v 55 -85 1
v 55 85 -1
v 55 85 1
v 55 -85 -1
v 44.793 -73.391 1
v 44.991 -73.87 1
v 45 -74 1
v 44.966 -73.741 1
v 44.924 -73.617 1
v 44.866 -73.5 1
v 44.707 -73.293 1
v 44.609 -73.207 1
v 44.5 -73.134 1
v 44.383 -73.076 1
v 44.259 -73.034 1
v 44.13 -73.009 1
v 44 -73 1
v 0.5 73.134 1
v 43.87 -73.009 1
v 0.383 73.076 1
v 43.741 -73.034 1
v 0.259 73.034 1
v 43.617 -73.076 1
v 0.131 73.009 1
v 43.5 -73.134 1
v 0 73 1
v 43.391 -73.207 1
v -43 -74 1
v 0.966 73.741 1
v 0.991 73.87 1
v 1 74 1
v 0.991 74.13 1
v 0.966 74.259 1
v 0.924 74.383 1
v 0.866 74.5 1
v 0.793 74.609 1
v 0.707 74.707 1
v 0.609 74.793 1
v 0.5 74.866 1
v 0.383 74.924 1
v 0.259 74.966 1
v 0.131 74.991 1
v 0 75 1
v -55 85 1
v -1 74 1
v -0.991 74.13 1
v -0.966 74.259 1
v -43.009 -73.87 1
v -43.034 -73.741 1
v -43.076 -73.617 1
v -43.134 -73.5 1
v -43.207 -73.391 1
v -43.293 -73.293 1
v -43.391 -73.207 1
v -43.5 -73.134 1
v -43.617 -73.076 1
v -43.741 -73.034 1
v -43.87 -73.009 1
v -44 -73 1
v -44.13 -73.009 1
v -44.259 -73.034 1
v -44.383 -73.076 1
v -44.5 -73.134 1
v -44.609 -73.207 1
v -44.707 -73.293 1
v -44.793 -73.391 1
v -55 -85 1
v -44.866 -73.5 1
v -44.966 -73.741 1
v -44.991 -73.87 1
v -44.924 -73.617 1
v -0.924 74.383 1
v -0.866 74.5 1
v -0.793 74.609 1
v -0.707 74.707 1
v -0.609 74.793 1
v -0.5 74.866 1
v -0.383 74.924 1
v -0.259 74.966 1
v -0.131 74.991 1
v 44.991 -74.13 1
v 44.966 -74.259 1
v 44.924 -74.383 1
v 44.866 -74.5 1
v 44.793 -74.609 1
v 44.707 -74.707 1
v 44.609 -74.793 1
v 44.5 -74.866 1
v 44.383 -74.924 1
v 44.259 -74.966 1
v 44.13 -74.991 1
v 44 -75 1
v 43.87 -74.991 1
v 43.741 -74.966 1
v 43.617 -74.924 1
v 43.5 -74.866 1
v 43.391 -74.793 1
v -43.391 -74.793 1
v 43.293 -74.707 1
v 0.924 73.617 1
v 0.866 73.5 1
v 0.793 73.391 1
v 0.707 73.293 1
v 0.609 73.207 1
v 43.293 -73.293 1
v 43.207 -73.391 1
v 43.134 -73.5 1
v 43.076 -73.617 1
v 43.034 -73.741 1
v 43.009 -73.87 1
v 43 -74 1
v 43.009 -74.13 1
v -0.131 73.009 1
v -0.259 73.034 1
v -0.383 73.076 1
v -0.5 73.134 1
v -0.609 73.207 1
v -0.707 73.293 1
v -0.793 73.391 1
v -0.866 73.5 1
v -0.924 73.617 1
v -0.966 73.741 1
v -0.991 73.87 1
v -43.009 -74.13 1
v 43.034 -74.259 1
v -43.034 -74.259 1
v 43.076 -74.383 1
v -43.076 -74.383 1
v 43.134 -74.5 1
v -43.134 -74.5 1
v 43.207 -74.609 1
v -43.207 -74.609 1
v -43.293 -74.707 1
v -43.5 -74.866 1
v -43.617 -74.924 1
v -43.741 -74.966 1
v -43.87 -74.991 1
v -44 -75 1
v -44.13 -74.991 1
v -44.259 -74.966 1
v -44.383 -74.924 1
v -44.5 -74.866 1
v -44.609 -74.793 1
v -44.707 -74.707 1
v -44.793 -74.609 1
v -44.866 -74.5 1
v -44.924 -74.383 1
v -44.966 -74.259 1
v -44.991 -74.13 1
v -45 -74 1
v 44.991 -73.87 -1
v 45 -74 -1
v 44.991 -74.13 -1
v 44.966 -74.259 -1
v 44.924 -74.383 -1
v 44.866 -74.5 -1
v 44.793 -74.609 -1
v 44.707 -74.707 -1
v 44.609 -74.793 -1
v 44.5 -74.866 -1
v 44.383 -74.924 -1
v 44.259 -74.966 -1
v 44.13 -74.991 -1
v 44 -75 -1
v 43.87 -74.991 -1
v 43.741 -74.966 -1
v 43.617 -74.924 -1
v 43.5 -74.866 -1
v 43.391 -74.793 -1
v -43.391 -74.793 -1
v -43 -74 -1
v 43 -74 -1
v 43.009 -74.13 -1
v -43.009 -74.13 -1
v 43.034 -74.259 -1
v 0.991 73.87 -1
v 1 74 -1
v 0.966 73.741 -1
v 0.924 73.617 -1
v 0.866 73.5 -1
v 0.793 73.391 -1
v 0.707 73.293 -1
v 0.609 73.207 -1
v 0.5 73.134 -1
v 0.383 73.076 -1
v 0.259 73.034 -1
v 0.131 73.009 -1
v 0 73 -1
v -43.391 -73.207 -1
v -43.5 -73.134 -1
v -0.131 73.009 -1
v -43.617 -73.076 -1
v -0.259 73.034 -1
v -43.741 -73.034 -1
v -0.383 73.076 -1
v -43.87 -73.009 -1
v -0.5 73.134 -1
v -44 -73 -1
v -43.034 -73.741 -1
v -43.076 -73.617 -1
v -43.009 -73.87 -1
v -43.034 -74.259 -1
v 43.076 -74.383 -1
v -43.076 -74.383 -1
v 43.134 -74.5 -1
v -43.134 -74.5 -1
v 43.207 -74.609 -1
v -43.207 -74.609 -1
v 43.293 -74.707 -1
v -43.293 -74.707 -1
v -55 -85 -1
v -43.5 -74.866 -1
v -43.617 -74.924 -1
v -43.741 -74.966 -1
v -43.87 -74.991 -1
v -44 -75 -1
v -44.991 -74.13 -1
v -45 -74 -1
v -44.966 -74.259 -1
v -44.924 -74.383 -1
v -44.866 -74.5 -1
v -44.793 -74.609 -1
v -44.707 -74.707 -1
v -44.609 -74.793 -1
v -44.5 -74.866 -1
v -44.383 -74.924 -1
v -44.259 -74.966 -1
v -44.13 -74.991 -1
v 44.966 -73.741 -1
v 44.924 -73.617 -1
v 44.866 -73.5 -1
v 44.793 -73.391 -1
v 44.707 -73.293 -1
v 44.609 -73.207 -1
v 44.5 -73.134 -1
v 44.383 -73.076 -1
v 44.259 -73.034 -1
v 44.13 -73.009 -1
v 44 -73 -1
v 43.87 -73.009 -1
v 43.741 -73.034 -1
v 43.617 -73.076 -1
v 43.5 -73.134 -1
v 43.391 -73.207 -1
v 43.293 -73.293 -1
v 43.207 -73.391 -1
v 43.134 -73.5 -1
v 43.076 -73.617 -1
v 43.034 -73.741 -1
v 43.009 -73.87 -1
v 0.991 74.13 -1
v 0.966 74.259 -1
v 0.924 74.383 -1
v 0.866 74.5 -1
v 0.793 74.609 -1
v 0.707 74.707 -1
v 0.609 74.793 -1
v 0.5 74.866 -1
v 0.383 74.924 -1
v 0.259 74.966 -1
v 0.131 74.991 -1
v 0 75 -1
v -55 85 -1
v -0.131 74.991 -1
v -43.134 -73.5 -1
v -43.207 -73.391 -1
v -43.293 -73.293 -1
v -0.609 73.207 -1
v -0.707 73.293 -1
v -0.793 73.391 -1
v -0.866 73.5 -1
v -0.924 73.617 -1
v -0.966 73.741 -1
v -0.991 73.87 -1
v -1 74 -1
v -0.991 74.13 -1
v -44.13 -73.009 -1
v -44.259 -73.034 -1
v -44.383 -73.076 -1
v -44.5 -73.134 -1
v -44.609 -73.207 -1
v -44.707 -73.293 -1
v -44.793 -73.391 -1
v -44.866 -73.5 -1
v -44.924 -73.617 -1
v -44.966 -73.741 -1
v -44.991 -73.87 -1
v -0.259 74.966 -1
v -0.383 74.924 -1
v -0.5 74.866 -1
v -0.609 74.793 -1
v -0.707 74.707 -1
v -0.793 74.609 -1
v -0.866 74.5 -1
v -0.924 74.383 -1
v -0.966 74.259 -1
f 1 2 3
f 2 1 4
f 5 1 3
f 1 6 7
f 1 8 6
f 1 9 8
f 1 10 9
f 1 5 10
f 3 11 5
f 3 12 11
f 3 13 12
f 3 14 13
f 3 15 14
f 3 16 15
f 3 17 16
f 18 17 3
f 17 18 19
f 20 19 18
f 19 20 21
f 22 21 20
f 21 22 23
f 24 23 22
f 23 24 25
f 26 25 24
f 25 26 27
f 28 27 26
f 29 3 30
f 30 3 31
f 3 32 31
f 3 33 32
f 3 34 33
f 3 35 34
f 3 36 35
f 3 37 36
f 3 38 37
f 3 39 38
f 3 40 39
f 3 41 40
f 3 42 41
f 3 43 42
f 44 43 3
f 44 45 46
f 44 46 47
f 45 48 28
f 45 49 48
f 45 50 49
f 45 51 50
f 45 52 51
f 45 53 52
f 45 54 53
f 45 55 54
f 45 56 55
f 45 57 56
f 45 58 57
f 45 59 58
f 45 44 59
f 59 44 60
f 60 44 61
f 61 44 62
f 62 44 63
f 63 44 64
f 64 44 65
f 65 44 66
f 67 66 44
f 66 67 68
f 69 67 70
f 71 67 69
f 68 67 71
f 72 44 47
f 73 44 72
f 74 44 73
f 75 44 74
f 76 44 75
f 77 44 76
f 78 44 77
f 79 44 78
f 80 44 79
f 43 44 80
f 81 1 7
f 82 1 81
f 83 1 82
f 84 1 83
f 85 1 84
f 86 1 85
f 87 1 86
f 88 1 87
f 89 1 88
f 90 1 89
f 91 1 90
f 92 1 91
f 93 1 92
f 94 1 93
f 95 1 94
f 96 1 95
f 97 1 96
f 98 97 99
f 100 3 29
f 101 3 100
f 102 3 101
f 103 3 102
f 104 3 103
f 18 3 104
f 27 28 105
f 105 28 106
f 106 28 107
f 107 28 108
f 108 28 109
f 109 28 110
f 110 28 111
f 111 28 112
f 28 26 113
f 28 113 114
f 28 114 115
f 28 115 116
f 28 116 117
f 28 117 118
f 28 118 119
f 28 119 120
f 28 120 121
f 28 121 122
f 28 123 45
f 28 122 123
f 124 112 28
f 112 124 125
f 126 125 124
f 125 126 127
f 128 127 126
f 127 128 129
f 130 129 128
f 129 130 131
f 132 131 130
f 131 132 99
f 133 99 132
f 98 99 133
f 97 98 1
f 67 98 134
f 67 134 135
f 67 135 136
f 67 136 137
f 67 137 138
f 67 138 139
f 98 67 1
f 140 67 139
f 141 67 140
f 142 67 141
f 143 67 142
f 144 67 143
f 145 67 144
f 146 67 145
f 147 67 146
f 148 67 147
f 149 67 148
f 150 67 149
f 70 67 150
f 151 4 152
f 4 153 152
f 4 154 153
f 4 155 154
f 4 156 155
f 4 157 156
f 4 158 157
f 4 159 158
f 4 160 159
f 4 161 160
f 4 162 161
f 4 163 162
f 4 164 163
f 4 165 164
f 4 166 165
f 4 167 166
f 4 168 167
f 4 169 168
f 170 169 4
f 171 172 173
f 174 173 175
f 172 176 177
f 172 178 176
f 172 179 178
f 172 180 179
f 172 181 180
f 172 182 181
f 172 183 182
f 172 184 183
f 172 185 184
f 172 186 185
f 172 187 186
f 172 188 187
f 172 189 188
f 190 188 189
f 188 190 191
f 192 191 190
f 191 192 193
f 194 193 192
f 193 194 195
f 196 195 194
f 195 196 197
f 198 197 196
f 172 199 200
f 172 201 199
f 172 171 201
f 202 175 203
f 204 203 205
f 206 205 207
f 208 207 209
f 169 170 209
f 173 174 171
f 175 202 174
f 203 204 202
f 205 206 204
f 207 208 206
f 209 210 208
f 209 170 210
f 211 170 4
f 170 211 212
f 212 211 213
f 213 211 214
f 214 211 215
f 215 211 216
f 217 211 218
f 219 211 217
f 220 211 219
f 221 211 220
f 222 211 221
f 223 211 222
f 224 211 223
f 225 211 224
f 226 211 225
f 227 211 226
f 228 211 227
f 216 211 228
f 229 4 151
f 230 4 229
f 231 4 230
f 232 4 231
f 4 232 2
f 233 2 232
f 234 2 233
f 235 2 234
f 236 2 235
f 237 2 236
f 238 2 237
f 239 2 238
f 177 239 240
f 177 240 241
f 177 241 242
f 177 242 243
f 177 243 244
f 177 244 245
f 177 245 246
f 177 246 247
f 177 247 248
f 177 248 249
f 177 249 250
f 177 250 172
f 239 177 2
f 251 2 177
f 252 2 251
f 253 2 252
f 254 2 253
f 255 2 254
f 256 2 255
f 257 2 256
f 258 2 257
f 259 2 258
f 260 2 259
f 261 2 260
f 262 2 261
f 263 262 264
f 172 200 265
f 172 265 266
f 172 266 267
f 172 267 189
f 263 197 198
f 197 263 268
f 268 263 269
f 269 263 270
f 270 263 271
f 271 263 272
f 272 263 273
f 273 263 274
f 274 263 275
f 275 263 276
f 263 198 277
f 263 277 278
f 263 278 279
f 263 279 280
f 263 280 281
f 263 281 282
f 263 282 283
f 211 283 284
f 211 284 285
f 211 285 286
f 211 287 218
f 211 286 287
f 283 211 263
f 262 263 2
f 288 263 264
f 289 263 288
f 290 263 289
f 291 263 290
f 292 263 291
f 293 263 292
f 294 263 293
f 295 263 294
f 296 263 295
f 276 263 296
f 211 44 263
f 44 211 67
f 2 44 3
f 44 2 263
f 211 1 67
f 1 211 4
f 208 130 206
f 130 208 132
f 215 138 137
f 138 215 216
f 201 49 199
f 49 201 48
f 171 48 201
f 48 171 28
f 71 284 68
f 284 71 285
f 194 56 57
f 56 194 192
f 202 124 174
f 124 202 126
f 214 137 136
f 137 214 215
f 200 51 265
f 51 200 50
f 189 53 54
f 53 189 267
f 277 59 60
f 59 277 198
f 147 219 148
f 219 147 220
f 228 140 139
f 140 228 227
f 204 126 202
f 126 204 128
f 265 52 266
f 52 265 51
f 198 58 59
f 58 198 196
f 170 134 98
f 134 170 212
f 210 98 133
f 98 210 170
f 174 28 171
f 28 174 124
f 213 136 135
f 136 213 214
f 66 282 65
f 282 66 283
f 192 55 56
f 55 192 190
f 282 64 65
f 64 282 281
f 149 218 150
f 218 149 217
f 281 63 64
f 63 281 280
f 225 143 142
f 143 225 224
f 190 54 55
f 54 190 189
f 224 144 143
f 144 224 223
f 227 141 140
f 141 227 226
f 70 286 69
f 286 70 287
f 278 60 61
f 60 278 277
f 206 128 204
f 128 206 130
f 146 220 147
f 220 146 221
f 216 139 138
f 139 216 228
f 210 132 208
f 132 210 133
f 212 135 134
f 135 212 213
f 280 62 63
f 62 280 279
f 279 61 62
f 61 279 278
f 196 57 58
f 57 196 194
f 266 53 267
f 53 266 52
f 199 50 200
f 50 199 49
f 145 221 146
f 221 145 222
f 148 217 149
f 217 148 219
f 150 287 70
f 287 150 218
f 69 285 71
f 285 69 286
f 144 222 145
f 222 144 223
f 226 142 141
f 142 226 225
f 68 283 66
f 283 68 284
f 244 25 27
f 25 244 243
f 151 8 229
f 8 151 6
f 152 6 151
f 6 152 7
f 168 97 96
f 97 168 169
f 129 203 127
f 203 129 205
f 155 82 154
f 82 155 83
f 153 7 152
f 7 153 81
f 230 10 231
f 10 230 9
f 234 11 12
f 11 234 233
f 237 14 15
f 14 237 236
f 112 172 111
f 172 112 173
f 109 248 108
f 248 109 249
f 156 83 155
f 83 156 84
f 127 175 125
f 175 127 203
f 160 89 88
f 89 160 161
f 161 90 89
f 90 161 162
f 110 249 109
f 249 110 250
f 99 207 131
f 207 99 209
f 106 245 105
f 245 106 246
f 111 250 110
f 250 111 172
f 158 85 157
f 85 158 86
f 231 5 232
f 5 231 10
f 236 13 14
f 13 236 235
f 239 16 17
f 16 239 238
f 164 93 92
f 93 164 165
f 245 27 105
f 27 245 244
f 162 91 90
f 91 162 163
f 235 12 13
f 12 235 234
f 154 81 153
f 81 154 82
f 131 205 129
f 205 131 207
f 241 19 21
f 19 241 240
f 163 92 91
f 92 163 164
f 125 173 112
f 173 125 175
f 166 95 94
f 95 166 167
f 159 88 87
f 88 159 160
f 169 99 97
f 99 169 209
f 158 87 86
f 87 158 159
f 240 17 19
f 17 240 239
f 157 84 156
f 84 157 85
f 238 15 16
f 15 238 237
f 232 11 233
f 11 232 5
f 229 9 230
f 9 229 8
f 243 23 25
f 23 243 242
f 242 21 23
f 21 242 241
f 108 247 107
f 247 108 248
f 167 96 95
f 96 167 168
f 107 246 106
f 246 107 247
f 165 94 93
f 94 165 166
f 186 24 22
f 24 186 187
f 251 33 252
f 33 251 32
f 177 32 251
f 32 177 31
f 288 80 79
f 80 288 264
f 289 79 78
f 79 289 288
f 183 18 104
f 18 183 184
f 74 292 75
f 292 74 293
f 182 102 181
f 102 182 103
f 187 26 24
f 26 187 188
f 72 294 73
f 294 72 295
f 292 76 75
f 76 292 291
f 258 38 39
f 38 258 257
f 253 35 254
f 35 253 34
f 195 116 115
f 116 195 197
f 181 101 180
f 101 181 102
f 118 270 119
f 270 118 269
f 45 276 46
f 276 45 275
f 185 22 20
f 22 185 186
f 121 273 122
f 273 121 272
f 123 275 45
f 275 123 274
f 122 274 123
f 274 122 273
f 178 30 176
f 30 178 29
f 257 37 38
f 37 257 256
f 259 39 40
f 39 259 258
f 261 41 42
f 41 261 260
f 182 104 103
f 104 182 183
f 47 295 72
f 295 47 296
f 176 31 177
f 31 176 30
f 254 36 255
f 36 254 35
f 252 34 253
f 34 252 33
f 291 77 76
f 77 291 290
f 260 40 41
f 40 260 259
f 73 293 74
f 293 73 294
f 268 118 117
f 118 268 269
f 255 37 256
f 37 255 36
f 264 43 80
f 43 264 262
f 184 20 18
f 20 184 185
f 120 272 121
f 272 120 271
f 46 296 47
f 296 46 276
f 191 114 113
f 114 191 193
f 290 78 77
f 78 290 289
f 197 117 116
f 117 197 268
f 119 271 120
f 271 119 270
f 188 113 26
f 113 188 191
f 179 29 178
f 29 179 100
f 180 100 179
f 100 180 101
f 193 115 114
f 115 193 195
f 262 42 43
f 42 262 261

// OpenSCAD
// ========================================
// a 110 x 170 x 2 mm plate with three 2 mm holes
// NeuroCAD canonical IR; dimensions are millimetres
// ========================================
$fn = 48;

difference() {
  cube(size=[110, 170, 2], center=true);
  translate([-44, -74, 0]) {
    cylinder(r=1, h=4, center=true);
  }
  translate([44, -74, 0]) {
    cylinder(r=1, h=4, center=true);
  }
  translate([0, 74, 0]) {
    cylinder(r=1, h=4, center=true);
  }
}
